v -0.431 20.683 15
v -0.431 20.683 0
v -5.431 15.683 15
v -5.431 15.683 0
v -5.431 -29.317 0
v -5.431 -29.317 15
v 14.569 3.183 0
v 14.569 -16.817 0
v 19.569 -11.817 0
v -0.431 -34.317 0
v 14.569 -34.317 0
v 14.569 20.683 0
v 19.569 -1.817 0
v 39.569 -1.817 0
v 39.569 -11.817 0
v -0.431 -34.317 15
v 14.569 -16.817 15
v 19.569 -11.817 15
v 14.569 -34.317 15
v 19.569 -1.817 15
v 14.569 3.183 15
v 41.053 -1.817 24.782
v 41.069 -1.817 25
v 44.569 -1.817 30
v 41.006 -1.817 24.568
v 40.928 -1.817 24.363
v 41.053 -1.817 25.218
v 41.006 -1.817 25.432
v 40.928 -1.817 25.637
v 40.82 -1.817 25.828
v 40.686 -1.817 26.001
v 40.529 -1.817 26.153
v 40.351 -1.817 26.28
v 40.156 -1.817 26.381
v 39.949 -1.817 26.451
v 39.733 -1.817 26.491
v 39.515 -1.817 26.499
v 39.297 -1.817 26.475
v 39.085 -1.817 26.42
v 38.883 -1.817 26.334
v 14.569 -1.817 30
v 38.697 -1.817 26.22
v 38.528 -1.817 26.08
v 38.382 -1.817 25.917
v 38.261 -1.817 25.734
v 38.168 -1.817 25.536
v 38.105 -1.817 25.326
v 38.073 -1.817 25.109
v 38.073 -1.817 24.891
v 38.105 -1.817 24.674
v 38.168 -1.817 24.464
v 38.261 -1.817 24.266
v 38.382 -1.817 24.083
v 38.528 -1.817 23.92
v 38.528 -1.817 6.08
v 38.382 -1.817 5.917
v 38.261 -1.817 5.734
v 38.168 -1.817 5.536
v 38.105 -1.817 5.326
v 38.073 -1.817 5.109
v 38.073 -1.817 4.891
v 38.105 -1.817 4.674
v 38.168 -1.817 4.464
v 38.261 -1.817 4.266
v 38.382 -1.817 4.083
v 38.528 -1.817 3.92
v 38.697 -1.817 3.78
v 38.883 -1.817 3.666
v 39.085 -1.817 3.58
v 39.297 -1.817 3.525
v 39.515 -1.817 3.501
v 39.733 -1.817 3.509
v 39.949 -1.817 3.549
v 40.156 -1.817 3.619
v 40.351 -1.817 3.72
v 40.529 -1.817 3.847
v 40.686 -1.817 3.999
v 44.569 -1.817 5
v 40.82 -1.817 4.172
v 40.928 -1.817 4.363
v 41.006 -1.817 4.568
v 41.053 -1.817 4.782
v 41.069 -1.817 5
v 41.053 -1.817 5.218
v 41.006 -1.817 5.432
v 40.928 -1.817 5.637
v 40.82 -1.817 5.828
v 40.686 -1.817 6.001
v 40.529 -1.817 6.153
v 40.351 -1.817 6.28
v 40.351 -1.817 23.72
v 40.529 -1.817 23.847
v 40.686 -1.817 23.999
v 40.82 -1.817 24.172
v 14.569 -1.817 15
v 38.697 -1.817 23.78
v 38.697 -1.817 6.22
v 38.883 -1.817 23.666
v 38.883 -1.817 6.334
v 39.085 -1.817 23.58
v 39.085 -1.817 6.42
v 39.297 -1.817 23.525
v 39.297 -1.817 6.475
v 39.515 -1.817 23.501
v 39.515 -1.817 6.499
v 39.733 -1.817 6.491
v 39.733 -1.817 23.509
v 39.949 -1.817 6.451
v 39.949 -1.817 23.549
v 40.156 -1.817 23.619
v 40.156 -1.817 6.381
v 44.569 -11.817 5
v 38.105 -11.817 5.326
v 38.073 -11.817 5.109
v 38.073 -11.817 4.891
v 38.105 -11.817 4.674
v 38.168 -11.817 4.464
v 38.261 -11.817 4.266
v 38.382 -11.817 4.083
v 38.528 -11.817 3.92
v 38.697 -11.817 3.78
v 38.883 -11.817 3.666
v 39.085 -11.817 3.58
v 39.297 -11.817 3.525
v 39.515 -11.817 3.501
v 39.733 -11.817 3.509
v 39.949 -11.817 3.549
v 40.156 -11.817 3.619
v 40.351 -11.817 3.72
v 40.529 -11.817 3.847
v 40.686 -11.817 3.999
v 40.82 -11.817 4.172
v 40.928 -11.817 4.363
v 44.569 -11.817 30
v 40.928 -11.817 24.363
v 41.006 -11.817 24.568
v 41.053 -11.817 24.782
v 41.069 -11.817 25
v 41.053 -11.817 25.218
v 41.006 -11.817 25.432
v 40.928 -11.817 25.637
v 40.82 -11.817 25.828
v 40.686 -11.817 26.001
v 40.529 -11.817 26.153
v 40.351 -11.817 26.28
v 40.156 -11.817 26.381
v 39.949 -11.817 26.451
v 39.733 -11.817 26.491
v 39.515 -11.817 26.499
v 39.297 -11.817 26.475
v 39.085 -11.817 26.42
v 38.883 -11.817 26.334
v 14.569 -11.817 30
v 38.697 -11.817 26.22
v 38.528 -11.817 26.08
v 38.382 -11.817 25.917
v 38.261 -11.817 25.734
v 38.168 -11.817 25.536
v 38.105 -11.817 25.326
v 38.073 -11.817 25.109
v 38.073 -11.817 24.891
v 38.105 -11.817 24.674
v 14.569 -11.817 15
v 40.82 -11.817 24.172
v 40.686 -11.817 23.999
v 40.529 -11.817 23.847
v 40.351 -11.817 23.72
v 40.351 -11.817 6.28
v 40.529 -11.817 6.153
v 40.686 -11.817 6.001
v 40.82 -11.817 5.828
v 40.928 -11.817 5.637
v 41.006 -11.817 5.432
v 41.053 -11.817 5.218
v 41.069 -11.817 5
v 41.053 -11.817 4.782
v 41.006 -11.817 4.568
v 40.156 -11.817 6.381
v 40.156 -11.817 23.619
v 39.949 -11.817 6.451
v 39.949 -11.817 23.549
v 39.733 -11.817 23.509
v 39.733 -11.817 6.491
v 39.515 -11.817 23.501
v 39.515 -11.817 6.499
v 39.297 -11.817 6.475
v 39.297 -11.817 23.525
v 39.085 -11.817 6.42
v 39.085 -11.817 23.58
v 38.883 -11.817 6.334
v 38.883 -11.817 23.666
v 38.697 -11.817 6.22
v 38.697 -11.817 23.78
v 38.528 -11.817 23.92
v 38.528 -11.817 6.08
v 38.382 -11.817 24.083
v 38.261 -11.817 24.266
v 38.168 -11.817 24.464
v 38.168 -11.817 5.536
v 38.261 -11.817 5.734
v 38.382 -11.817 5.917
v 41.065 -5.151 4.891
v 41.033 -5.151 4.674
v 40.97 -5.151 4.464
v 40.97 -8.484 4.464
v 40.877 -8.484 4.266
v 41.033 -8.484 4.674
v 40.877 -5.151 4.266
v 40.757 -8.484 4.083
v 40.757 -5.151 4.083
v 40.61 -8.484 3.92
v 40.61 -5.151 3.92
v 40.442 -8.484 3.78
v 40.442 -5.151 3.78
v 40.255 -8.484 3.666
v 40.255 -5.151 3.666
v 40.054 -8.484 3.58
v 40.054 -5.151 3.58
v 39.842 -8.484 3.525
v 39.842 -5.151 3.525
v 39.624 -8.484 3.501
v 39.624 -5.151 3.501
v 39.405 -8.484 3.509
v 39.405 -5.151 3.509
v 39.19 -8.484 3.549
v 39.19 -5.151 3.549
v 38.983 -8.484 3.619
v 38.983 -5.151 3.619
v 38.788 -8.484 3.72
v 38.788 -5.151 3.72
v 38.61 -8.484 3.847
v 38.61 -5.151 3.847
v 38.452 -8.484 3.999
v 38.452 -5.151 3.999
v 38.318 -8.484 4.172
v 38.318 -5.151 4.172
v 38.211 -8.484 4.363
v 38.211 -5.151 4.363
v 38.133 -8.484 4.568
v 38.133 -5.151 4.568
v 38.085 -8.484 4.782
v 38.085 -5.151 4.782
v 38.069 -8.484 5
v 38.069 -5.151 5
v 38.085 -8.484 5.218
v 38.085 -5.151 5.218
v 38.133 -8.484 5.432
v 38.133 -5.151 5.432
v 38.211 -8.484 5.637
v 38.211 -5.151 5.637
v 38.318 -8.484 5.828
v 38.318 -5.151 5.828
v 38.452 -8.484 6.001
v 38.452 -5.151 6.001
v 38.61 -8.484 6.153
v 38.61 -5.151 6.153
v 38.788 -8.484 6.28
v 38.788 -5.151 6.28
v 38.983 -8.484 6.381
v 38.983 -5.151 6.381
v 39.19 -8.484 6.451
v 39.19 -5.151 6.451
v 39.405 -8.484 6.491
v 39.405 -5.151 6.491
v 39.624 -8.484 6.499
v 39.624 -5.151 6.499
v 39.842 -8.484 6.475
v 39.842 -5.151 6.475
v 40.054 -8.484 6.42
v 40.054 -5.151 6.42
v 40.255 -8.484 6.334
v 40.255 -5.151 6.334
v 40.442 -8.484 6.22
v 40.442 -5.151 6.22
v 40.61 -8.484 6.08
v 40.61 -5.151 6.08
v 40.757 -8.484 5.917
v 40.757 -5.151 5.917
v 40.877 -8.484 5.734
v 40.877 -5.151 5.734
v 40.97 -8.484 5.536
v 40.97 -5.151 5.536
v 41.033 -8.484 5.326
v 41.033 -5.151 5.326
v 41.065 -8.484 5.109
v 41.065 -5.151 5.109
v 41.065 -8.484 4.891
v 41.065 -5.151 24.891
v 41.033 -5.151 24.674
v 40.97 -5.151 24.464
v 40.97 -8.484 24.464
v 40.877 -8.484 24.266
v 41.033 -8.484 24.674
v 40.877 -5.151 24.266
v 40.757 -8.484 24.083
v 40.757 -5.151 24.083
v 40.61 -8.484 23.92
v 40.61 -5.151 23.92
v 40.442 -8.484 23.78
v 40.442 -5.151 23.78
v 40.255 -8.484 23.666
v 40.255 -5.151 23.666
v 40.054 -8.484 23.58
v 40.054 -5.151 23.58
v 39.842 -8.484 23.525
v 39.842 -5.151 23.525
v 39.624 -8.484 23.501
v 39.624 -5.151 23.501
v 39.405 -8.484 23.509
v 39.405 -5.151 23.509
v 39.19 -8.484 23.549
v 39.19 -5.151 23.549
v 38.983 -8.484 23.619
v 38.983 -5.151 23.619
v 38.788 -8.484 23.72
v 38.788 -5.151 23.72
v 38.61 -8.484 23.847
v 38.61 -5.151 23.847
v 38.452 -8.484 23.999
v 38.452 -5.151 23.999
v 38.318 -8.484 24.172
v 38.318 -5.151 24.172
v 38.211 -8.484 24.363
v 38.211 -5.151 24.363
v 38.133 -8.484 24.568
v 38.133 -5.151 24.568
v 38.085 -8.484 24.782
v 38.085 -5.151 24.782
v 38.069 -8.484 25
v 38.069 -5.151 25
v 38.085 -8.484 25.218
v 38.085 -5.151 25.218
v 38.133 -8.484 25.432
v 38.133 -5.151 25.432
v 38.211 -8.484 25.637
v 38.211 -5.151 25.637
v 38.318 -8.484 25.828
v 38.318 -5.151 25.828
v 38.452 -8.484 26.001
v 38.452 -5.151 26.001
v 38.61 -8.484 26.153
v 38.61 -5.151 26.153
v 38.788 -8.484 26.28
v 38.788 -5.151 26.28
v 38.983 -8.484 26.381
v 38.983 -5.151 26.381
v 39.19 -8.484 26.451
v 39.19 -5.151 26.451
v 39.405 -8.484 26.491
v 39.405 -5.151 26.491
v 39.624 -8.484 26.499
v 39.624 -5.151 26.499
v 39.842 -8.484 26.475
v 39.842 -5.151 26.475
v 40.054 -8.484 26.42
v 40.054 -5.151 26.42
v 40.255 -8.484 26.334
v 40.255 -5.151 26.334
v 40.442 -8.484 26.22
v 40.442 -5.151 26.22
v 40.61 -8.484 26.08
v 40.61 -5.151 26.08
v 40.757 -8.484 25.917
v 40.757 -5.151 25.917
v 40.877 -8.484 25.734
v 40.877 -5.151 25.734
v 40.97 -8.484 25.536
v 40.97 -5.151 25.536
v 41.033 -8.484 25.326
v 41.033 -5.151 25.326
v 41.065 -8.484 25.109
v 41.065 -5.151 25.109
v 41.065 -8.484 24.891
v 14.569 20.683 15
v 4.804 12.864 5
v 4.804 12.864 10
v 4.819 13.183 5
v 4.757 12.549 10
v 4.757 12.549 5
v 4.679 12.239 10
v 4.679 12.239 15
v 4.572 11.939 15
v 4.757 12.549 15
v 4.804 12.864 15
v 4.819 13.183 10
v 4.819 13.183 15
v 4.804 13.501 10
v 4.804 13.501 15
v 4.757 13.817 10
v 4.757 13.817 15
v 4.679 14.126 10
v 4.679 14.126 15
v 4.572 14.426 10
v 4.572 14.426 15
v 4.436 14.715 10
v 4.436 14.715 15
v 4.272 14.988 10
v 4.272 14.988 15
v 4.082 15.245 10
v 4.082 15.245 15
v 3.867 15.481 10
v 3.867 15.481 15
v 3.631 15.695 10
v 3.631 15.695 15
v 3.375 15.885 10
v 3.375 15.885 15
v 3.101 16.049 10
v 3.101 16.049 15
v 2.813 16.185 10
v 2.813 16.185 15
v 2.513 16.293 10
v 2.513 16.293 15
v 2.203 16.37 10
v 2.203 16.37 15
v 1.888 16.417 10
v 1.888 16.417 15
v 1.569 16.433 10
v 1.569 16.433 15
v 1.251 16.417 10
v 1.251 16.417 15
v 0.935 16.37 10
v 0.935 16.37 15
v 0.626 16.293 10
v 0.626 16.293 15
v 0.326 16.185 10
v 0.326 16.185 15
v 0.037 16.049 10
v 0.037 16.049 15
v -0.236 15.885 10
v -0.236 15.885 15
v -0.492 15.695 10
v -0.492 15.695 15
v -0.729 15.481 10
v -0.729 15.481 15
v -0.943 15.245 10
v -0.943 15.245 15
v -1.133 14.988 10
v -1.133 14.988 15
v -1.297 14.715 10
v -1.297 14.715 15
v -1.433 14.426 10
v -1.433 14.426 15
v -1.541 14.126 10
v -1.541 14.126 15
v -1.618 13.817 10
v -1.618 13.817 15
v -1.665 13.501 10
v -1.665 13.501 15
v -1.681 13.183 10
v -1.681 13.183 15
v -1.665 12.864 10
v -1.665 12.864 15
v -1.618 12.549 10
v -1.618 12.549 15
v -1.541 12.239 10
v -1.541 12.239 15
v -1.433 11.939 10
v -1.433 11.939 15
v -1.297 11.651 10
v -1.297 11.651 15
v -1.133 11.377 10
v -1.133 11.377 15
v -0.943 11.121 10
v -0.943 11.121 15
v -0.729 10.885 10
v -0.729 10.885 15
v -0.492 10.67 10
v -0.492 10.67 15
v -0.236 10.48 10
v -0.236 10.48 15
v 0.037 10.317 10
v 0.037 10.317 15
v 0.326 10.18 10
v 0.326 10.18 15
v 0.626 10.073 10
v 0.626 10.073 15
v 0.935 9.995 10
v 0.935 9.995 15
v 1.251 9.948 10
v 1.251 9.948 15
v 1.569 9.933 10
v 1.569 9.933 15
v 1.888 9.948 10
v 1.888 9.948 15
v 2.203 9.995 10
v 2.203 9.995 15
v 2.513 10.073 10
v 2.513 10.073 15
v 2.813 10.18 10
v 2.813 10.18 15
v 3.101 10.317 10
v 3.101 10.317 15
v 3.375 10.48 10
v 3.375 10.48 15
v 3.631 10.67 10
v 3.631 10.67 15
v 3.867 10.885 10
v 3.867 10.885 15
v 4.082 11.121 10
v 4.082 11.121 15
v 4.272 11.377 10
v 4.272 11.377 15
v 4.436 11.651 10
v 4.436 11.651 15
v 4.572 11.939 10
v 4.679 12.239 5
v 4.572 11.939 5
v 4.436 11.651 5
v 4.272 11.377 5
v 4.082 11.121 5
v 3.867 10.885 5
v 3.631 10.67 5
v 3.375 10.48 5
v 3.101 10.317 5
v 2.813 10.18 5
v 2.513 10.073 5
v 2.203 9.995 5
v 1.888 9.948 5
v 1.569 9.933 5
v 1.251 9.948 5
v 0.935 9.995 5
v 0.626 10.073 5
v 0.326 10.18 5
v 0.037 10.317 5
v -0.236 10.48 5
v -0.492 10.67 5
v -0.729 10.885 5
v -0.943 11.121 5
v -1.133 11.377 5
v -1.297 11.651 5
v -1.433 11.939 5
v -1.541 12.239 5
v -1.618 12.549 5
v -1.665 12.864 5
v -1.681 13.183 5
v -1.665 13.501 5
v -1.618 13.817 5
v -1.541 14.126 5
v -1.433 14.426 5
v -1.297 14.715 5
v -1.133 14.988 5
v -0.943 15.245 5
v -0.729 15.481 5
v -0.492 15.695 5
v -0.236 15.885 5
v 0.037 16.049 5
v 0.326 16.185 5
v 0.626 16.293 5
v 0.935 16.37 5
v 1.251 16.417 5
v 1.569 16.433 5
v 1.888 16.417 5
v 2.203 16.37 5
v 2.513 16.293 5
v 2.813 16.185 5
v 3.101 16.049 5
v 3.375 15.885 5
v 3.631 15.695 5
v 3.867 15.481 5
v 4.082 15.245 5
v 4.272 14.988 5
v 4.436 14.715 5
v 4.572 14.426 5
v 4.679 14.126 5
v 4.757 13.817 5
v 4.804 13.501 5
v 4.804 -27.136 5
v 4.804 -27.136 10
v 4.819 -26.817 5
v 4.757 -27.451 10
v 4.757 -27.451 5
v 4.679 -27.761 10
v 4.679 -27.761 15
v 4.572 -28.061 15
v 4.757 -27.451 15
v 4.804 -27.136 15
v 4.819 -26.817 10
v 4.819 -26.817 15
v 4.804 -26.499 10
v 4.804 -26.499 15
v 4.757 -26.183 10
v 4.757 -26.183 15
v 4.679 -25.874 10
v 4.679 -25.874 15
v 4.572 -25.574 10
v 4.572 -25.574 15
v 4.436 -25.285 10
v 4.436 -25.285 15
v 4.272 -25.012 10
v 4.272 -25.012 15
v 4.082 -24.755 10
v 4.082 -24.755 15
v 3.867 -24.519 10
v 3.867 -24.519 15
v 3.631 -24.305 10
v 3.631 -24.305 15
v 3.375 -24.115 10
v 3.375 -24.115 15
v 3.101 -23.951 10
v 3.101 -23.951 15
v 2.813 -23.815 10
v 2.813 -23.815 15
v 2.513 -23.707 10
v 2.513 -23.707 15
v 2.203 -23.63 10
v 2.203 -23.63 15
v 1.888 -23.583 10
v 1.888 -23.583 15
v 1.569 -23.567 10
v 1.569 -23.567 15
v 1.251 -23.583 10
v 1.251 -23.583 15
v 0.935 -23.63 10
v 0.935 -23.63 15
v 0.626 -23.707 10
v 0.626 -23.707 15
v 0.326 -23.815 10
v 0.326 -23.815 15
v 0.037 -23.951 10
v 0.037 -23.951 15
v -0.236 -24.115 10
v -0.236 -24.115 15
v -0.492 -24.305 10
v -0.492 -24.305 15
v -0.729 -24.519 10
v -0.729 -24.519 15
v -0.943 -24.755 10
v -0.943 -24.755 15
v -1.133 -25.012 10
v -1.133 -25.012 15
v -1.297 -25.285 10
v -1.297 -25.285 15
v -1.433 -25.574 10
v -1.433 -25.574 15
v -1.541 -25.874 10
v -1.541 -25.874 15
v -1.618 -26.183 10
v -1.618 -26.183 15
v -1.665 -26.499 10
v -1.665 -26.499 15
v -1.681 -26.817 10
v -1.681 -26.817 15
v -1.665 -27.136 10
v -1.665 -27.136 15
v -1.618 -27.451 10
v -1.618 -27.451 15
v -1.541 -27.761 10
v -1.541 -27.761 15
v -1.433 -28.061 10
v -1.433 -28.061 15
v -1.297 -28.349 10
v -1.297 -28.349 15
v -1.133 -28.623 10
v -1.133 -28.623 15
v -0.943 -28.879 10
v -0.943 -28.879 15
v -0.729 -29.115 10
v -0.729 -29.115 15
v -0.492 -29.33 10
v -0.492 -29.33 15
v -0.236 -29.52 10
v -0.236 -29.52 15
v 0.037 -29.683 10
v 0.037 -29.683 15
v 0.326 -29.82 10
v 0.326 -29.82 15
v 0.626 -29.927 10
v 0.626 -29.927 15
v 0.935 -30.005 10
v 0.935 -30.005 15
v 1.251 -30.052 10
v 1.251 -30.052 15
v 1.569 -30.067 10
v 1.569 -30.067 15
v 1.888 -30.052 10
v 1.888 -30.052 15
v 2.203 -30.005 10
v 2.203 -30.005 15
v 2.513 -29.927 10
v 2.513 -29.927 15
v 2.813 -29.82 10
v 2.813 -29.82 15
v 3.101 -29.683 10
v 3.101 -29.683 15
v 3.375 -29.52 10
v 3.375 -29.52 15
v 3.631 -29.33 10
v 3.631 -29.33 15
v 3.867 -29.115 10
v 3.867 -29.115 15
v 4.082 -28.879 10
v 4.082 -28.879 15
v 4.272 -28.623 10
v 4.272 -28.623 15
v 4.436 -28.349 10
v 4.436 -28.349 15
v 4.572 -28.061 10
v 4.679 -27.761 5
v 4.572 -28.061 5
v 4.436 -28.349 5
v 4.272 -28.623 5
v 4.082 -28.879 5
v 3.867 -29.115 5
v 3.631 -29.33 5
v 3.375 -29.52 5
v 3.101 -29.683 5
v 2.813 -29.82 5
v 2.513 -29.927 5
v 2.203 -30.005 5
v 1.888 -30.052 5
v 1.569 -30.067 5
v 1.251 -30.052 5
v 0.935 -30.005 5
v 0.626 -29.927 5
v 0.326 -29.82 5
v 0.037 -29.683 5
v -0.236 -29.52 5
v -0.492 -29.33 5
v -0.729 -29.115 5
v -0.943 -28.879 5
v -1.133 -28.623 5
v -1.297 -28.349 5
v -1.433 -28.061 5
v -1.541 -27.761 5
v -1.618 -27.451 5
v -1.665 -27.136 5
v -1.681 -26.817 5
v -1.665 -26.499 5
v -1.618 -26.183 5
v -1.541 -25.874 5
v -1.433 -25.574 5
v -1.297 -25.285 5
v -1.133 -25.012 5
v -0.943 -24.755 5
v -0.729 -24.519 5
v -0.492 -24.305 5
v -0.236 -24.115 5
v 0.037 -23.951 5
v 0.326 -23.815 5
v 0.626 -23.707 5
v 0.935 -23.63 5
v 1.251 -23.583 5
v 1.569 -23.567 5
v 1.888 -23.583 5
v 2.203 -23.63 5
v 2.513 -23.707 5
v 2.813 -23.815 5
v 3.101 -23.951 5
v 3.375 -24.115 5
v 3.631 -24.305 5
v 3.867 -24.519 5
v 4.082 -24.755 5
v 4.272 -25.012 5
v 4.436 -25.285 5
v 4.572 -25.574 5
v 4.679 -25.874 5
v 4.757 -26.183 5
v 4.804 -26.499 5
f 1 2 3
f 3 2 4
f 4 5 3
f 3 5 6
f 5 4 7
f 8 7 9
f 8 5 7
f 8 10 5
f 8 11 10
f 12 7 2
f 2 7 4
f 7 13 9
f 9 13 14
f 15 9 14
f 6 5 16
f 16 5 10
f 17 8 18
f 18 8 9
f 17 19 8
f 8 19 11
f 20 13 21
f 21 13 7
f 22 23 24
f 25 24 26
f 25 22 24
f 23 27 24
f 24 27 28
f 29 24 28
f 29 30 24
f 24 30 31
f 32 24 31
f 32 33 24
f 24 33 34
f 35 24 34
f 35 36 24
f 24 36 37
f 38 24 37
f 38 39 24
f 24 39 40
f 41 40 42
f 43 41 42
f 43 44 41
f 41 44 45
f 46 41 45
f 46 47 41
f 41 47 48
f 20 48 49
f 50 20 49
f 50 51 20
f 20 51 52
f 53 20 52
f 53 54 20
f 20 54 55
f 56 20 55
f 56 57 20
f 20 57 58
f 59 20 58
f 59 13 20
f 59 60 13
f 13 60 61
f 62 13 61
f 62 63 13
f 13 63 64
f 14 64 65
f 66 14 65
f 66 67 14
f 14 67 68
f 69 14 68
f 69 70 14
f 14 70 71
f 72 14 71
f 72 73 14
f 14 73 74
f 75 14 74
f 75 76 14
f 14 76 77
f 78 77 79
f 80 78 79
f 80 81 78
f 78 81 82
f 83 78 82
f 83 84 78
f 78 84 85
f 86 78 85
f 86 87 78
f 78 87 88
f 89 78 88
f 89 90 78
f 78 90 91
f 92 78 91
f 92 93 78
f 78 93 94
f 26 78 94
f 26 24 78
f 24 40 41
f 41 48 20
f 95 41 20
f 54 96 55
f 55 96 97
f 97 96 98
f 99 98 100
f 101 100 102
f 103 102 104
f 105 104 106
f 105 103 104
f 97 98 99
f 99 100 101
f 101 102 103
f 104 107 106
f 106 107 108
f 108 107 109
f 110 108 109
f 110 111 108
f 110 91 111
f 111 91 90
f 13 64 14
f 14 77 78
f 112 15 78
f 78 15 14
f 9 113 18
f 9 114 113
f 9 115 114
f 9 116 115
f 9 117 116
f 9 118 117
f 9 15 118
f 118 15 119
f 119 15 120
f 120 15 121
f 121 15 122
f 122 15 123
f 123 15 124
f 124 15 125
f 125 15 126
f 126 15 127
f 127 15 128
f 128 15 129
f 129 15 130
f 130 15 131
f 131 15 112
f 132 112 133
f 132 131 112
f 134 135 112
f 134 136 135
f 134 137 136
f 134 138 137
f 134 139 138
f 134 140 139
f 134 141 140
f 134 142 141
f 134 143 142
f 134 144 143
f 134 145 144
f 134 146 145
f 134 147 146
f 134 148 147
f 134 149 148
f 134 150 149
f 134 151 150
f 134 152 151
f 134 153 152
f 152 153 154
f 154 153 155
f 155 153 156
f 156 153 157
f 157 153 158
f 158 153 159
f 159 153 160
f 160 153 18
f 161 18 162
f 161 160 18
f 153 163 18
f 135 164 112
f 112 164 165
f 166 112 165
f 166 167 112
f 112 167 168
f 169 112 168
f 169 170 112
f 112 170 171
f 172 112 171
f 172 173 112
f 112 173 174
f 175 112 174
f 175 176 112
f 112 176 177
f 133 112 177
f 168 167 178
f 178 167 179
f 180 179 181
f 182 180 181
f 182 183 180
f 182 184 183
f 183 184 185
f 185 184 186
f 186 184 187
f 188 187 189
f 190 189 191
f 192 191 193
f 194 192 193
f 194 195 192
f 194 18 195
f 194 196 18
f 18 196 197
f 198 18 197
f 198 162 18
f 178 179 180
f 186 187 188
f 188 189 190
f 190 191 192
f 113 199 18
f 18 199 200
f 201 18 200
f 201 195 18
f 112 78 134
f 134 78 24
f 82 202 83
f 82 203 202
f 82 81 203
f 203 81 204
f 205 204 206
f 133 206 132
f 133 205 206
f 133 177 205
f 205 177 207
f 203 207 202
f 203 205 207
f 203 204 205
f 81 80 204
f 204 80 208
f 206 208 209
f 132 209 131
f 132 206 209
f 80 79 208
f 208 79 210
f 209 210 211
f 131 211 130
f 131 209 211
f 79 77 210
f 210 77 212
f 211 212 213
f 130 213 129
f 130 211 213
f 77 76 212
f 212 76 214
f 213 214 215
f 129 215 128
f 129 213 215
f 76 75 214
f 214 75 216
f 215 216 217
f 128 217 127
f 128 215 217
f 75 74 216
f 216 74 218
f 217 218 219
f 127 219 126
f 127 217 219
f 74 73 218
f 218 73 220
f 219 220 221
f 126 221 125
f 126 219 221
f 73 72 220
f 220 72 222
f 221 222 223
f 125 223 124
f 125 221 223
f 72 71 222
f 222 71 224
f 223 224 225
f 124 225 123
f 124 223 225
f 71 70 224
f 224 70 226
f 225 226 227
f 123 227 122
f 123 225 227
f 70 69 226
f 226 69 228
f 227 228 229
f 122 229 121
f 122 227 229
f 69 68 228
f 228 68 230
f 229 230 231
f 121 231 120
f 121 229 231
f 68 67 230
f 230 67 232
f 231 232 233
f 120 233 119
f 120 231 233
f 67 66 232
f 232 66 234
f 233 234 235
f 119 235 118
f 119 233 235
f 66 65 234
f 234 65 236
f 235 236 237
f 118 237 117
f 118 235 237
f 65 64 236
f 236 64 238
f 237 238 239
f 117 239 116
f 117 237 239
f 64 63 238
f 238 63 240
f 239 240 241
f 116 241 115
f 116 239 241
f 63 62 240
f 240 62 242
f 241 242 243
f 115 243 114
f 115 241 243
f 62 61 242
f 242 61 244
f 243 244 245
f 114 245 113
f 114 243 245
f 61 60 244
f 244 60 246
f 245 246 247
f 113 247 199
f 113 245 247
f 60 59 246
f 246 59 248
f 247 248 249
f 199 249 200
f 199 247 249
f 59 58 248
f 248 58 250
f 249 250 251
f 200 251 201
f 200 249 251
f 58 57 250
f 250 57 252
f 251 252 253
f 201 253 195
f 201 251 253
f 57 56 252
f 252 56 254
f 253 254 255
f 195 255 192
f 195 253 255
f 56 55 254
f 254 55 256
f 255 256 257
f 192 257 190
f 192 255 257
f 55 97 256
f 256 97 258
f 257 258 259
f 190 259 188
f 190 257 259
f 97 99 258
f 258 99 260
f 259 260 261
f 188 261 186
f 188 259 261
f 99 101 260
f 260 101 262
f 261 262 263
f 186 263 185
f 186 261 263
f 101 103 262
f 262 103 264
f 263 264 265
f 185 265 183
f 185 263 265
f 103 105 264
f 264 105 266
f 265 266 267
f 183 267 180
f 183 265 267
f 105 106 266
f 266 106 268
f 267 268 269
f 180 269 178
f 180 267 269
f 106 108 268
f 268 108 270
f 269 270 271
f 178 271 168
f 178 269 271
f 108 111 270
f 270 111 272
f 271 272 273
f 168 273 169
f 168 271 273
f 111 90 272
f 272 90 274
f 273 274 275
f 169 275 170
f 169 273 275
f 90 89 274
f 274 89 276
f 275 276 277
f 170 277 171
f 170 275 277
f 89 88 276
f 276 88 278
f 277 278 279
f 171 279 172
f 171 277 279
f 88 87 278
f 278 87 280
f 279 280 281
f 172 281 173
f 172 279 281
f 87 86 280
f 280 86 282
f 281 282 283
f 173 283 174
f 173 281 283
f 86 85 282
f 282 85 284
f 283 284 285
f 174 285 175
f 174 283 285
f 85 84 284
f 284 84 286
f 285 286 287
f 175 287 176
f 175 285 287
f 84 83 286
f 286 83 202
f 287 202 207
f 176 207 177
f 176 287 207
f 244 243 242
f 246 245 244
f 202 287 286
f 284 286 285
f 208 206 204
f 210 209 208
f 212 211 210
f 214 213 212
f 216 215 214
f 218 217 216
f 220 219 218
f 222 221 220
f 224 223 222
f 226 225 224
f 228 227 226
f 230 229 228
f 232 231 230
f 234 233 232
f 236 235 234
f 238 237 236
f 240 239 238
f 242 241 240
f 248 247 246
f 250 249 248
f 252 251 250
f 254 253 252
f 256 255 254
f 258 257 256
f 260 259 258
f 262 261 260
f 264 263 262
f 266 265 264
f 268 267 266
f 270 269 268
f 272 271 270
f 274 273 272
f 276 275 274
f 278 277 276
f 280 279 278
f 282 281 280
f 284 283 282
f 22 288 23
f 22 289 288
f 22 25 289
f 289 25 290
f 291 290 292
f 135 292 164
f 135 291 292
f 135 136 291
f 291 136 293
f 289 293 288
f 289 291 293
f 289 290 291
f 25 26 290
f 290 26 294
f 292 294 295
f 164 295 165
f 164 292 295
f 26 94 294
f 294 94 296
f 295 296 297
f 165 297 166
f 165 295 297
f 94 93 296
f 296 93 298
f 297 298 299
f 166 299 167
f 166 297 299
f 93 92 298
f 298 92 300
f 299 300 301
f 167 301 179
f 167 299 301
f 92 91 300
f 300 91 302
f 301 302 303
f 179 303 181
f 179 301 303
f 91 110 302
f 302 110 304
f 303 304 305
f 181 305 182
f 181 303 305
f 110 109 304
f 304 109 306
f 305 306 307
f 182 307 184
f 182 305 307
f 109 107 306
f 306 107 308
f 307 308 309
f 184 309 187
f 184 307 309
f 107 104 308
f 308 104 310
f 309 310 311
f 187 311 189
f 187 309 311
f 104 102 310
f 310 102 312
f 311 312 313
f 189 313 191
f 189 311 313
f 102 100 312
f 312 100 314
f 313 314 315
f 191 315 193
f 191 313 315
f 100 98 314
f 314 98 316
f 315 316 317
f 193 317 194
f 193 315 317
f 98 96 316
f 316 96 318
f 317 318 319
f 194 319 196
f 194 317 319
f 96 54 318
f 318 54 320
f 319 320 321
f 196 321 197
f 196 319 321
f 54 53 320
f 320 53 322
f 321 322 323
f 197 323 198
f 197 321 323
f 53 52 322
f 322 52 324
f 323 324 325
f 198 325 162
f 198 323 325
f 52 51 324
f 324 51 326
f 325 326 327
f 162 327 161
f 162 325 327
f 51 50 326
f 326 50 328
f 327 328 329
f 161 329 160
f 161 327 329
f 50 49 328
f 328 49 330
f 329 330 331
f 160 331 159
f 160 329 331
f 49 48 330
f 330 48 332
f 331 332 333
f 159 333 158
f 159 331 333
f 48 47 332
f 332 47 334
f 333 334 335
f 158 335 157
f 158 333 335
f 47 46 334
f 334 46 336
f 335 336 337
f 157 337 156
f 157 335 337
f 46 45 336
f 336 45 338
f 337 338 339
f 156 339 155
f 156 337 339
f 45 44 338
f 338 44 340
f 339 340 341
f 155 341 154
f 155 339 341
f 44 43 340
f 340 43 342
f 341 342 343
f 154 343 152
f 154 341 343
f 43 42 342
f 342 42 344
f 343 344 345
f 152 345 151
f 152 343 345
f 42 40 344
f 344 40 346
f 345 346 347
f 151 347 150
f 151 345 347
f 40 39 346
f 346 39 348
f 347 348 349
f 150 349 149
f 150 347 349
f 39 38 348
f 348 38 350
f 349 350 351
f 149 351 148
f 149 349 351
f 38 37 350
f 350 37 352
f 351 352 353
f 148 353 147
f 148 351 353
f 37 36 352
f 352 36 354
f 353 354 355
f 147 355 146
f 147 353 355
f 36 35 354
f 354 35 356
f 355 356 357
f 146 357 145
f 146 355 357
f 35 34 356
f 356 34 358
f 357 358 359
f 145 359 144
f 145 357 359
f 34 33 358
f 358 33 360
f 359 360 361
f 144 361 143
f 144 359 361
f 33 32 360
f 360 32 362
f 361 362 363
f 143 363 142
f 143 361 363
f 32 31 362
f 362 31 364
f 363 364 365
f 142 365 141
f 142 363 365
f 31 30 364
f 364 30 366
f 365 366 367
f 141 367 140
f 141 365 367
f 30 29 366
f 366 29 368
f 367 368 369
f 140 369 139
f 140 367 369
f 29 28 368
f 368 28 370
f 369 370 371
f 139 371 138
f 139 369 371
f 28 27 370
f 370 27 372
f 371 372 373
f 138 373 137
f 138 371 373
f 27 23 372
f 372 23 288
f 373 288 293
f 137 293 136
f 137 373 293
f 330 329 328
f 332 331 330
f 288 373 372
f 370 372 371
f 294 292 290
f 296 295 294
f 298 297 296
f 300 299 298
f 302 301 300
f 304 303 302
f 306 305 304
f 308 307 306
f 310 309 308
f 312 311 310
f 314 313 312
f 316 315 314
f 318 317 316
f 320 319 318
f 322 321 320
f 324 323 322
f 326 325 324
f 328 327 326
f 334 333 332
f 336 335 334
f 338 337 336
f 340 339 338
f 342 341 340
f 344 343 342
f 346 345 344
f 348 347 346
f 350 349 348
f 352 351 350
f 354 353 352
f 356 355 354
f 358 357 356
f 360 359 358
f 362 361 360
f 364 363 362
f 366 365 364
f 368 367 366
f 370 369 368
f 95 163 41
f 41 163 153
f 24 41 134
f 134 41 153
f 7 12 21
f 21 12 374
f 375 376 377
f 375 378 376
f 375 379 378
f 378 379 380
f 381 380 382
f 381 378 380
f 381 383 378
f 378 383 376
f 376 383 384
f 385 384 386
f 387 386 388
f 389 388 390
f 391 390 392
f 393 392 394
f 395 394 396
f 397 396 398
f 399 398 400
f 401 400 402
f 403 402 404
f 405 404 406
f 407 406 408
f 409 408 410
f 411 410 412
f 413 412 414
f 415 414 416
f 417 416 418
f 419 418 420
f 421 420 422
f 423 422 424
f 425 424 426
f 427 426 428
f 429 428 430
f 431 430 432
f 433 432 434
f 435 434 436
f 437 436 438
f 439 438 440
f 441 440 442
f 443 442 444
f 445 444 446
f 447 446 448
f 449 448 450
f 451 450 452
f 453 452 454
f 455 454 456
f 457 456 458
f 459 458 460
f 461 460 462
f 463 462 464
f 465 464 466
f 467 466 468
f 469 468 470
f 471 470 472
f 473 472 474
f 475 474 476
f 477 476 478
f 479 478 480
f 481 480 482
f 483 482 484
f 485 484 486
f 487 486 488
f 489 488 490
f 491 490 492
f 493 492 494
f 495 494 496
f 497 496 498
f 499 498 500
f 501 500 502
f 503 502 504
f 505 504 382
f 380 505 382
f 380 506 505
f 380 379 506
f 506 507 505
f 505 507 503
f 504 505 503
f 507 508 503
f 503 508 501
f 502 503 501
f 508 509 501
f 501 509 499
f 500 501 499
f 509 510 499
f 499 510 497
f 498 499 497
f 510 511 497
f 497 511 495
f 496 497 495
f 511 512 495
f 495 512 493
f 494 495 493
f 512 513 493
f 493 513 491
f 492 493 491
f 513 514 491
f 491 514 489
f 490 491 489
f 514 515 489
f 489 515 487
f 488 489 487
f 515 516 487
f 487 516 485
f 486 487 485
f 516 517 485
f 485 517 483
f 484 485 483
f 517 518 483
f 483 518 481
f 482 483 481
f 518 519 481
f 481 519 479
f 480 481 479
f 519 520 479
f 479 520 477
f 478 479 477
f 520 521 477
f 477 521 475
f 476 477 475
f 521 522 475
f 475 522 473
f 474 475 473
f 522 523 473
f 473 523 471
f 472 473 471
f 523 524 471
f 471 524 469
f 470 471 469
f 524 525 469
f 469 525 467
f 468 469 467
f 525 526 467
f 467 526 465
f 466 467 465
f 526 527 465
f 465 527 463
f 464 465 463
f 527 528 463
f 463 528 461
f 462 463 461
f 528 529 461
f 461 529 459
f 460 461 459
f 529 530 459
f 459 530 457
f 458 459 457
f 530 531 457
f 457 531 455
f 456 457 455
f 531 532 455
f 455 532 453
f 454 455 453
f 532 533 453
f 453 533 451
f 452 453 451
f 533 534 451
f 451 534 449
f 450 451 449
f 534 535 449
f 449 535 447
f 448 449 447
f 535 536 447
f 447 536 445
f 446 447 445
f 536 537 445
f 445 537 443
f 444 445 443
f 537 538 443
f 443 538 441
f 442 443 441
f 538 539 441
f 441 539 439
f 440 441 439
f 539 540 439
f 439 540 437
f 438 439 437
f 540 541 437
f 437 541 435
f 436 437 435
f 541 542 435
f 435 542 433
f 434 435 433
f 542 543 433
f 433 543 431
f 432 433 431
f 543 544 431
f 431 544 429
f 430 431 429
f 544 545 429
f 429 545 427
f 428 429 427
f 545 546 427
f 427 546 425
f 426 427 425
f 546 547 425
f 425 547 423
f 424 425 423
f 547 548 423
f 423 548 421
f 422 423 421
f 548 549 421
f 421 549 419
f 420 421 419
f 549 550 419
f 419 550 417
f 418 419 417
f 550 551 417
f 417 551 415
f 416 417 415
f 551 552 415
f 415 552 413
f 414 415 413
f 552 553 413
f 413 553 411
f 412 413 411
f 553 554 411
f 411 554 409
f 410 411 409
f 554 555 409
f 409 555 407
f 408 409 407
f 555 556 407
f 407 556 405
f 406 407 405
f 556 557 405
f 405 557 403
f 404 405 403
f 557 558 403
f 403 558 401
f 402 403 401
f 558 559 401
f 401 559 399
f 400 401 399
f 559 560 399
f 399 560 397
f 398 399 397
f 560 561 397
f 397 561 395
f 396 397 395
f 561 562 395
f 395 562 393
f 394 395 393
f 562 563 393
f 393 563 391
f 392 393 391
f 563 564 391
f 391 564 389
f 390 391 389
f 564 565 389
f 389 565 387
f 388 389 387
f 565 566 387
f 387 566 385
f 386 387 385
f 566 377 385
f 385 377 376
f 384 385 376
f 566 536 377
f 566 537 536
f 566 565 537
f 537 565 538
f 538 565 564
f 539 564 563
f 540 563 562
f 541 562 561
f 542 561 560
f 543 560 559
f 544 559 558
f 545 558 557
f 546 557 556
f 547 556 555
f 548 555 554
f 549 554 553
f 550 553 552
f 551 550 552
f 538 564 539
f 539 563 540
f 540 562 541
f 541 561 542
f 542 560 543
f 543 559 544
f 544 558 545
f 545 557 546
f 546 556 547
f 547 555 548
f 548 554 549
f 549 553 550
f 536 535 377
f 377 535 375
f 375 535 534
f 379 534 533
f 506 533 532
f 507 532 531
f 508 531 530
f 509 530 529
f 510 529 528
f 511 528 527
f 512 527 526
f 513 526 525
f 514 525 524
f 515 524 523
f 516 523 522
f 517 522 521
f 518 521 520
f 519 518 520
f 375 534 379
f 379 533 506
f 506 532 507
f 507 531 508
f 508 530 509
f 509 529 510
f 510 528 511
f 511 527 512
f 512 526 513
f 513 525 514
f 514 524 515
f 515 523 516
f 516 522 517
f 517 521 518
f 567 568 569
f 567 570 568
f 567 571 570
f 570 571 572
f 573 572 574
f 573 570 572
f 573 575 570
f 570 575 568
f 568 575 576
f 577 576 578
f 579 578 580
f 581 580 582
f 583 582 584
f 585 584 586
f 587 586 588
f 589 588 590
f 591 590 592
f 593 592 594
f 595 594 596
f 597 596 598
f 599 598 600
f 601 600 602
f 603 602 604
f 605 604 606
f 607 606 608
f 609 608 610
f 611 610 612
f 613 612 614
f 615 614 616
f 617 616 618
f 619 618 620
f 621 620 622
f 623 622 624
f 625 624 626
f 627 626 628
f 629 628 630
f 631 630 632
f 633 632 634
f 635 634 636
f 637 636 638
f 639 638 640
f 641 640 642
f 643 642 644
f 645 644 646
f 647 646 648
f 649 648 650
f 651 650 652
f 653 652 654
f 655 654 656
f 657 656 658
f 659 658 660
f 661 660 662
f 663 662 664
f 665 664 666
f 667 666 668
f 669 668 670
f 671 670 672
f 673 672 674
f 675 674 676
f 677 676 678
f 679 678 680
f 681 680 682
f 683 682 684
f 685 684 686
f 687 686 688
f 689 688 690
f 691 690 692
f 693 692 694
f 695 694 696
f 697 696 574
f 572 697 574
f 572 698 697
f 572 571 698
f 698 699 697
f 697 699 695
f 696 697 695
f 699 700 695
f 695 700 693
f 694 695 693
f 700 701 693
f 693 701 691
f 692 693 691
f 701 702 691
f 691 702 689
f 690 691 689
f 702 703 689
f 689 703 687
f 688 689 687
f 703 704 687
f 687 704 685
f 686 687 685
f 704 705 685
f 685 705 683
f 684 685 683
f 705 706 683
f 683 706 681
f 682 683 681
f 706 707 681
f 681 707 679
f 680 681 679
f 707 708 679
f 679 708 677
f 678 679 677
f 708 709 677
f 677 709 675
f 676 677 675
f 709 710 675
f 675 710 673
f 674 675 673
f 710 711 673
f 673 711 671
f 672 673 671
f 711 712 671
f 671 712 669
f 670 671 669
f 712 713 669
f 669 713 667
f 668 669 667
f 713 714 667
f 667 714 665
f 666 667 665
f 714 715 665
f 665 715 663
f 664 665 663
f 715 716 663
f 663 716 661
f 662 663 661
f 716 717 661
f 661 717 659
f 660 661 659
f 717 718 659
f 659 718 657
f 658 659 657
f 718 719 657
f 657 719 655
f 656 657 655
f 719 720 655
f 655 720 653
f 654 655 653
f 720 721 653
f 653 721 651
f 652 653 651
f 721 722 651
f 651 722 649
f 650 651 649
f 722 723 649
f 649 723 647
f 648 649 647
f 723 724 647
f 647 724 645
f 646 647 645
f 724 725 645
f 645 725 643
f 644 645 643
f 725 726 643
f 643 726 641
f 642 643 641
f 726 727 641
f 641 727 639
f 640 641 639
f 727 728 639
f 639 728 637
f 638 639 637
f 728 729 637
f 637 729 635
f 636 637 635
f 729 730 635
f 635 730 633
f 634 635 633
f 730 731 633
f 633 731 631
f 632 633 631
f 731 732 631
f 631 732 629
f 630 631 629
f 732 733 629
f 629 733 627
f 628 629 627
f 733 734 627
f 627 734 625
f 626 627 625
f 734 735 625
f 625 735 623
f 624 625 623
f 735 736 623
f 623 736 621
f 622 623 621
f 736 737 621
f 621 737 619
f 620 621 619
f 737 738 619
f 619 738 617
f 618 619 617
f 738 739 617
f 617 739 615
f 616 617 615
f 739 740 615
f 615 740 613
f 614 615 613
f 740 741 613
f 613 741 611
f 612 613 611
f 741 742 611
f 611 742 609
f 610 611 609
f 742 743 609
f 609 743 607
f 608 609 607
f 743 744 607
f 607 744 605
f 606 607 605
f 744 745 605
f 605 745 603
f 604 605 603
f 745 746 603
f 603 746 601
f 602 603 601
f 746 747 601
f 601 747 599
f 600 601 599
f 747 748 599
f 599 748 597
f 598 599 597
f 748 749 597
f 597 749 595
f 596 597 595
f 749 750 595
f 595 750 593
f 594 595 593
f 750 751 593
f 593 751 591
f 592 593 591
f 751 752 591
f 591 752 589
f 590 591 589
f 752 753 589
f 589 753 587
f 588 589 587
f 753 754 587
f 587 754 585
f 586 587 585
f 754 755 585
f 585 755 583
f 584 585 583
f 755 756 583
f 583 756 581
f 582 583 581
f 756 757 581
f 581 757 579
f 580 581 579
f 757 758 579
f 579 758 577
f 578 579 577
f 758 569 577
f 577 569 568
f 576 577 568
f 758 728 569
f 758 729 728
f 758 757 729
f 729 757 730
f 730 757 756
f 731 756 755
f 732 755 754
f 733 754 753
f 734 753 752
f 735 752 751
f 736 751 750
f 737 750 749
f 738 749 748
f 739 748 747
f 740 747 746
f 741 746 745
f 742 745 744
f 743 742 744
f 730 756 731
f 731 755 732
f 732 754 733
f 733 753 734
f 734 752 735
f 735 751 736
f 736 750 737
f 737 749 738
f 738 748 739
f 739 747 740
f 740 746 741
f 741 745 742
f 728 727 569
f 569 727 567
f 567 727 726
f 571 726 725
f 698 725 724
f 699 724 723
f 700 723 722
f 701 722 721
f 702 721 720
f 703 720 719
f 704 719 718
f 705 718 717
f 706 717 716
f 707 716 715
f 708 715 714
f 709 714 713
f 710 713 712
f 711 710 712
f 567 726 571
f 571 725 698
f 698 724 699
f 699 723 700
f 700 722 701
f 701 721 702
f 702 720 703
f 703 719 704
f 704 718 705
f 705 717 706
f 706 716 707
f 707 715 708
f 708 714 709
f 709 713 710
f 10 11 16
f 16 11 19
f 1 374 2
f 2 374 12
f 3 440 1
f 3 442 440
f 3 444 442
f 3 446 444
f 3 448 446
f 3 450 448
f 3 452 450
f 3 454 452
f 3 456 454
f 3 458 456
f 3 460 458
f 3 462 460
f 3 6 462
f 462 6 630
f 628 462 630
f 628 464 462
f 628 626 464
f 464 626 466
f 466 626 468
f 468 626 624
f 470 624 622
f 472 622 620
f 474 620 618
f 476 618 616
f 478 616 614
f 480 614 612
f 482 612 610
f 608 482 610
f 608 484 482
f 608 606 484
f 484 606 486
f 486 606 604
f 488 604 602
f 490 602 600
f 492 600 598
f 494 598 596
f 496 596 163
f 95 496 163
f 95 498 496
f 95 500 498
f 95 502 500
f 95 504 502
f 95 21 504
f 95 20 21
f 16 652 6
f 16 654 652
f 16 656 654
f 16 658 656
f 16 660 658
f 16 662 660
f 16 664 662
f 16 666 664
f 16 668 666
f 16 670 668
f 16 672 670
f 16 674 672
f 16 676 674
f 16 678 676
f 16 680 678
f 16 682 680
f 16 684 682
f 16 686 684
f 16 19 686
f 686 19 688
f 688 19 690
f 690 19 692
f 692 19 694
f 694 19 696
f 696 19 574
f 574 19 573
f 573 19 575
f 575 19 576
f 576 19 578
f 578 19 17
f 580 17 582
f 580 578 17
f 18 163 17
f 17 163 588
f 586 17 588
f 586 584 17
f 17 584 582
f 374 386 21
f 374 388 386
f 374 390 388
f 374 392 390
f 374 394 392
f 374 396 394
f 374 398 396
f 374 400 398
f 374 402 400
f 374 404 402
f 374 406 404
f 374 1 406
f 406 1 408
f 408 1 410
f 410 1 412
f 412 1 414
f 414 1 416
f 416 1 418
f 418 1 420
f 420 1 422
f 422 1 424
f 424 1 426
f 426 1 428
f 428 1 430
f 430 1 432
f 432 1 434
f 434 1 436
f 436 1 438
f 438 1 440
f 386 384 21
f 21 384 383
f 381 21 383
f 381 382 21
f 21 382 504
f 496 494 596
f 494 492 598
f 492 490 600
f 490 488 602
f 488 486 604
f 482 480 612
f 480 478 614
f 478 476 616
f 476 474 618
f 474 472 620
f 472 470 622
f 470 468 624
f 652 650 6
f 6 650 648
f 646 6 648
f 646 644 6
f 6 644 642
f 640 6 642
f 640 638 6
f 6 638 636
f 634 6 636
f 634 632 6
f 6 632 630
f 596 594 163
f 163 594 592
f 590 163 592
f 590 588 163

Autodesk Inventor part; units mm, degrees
ref_plane "YZ Plane" through (0, 0, 0) normal (1, 0, 0) x (0, 1, 0)
ref_plane "XZ Plane" through (0, 0, 0) normal (0, 1, 0) x (-1, 0, 0)
ref_plane "XY Plane" through (0, 0, 0) normal (0, 0, 1) x (1, 0, 0)
sketch "Sketch1" plane through (0, 0, 0) normal (0, 0, 1) x (1, 0, 0)
  line L0 (-5.4307, 20.6828) -> (14.5693, 20.6828)
  line L1 (14.5693, 20.6828) -> (14.5693, -34.3172)
  line L2 (14.5693, -34.3172) -> (-5.4307, -34.3172)
  line L3 (-5.4307, -34.3172) -> (-5.4307, 20.6828)
  point P0 (0, 0)
  dimension "d0" = 55
  dimension "d1" = 20
extrude "Extrusion1" add sketch "Sketch1" along normal blind 15
sketch "Sketch2" plane through (0, 0, 15) normal (0, 0, 1) x (1, 0, 0)
  line L0 (14.5693, 20.6828) -> (-5.4307, 20.6828) projected
  line L1 (-5.4307, -34.3172) -> (-5.4307, 20.6828) projected
  line L2 (-5.4307, -34.3172) -> (14.5693, -34.3172) projected
  circle A0 centre (1.5693, 13.1828) radius 3.25
  circle A1 centre (1.5693, -26.8172) radius 3.25
  point P0 (0, 0)
  dimension "d4" = 40
  dimension "d5" = 7.5
  dimension "d6" = 7
  dimension "d7" = 7.5
  dimension "d8" = 6.5
  dimension "d9" = 6.5
extrude "Extrusion2" cut sketch "Sketch2" against normal blind 10
sketch "Sketch3" plane through (0, 0, 0) normal (0, 0, -1) x (-1, 0, 0)
  line L0 (-14.5693, -34.3172) -> (-14.5693, 20.6828) projected
  line L1 (-14.5693, -1.8172) -> (-44.5693, -1.8172)
  line L2 (-44.5693, -1.8172) -> (-44.5693, -11.8172)
  line L3 (-44.5693, -11.8172) -> (-14.5693, -11.8172)
  line L4 (-14.5693, -11.8172) -> (-14.5693, -1.8172)
  line L5 (5.4307, 20.6828) -> (5.4307, -34.3172) projected
  point P0 (0, 0)
  point P1 (5.4307, -6.8172)
  dimension "d12" = 10
  dimension "d13" = 5
  dimension "d14" = 30
extrude "Extrusion3" add sketch "Sketch3" against normal blind 30
sketch "Sketch4" plane through (14.5693, -1.8172, 0) normal (0, 1, 0) x (1, 0, 0)
  line L0 (30, 0) -> (0, 0) projected
  line L1 (30, 0) -> (30, -30) projected
  line L2 (30, -30) -> (0, -30) projected
  point P0 (-14.5693, 0)
  point P1 (25, -5)
  point P2 (25, -25)
  dimension "d17" = 5
  dimension "d18" = 5
  dimension "d19" = 5
  dimension "d20" = 5
hole "Hole1" at (39.5693, -1.8172, 5) at (39.5693, -1.8172, 25) direction (0, -1, 0) diameter 3 depth 10 tip angle 118
chamfer "Chamfer1" distance 5 angle 45 1 edges at (44.5693, -6.8172, 0)
chamfer "Chamfer2" distance 5 angle 45 2 edges at (14.5693, -1.8172, 7.5) (14.5693, -11.8172, 7.5)
chamfer "Chamfer3" distance 5 angle 45 2 edges at (-5.4307, -34.3172, 7.5) (-5.4307, 20.6828, 7.5)
properties part number "Col support top"
